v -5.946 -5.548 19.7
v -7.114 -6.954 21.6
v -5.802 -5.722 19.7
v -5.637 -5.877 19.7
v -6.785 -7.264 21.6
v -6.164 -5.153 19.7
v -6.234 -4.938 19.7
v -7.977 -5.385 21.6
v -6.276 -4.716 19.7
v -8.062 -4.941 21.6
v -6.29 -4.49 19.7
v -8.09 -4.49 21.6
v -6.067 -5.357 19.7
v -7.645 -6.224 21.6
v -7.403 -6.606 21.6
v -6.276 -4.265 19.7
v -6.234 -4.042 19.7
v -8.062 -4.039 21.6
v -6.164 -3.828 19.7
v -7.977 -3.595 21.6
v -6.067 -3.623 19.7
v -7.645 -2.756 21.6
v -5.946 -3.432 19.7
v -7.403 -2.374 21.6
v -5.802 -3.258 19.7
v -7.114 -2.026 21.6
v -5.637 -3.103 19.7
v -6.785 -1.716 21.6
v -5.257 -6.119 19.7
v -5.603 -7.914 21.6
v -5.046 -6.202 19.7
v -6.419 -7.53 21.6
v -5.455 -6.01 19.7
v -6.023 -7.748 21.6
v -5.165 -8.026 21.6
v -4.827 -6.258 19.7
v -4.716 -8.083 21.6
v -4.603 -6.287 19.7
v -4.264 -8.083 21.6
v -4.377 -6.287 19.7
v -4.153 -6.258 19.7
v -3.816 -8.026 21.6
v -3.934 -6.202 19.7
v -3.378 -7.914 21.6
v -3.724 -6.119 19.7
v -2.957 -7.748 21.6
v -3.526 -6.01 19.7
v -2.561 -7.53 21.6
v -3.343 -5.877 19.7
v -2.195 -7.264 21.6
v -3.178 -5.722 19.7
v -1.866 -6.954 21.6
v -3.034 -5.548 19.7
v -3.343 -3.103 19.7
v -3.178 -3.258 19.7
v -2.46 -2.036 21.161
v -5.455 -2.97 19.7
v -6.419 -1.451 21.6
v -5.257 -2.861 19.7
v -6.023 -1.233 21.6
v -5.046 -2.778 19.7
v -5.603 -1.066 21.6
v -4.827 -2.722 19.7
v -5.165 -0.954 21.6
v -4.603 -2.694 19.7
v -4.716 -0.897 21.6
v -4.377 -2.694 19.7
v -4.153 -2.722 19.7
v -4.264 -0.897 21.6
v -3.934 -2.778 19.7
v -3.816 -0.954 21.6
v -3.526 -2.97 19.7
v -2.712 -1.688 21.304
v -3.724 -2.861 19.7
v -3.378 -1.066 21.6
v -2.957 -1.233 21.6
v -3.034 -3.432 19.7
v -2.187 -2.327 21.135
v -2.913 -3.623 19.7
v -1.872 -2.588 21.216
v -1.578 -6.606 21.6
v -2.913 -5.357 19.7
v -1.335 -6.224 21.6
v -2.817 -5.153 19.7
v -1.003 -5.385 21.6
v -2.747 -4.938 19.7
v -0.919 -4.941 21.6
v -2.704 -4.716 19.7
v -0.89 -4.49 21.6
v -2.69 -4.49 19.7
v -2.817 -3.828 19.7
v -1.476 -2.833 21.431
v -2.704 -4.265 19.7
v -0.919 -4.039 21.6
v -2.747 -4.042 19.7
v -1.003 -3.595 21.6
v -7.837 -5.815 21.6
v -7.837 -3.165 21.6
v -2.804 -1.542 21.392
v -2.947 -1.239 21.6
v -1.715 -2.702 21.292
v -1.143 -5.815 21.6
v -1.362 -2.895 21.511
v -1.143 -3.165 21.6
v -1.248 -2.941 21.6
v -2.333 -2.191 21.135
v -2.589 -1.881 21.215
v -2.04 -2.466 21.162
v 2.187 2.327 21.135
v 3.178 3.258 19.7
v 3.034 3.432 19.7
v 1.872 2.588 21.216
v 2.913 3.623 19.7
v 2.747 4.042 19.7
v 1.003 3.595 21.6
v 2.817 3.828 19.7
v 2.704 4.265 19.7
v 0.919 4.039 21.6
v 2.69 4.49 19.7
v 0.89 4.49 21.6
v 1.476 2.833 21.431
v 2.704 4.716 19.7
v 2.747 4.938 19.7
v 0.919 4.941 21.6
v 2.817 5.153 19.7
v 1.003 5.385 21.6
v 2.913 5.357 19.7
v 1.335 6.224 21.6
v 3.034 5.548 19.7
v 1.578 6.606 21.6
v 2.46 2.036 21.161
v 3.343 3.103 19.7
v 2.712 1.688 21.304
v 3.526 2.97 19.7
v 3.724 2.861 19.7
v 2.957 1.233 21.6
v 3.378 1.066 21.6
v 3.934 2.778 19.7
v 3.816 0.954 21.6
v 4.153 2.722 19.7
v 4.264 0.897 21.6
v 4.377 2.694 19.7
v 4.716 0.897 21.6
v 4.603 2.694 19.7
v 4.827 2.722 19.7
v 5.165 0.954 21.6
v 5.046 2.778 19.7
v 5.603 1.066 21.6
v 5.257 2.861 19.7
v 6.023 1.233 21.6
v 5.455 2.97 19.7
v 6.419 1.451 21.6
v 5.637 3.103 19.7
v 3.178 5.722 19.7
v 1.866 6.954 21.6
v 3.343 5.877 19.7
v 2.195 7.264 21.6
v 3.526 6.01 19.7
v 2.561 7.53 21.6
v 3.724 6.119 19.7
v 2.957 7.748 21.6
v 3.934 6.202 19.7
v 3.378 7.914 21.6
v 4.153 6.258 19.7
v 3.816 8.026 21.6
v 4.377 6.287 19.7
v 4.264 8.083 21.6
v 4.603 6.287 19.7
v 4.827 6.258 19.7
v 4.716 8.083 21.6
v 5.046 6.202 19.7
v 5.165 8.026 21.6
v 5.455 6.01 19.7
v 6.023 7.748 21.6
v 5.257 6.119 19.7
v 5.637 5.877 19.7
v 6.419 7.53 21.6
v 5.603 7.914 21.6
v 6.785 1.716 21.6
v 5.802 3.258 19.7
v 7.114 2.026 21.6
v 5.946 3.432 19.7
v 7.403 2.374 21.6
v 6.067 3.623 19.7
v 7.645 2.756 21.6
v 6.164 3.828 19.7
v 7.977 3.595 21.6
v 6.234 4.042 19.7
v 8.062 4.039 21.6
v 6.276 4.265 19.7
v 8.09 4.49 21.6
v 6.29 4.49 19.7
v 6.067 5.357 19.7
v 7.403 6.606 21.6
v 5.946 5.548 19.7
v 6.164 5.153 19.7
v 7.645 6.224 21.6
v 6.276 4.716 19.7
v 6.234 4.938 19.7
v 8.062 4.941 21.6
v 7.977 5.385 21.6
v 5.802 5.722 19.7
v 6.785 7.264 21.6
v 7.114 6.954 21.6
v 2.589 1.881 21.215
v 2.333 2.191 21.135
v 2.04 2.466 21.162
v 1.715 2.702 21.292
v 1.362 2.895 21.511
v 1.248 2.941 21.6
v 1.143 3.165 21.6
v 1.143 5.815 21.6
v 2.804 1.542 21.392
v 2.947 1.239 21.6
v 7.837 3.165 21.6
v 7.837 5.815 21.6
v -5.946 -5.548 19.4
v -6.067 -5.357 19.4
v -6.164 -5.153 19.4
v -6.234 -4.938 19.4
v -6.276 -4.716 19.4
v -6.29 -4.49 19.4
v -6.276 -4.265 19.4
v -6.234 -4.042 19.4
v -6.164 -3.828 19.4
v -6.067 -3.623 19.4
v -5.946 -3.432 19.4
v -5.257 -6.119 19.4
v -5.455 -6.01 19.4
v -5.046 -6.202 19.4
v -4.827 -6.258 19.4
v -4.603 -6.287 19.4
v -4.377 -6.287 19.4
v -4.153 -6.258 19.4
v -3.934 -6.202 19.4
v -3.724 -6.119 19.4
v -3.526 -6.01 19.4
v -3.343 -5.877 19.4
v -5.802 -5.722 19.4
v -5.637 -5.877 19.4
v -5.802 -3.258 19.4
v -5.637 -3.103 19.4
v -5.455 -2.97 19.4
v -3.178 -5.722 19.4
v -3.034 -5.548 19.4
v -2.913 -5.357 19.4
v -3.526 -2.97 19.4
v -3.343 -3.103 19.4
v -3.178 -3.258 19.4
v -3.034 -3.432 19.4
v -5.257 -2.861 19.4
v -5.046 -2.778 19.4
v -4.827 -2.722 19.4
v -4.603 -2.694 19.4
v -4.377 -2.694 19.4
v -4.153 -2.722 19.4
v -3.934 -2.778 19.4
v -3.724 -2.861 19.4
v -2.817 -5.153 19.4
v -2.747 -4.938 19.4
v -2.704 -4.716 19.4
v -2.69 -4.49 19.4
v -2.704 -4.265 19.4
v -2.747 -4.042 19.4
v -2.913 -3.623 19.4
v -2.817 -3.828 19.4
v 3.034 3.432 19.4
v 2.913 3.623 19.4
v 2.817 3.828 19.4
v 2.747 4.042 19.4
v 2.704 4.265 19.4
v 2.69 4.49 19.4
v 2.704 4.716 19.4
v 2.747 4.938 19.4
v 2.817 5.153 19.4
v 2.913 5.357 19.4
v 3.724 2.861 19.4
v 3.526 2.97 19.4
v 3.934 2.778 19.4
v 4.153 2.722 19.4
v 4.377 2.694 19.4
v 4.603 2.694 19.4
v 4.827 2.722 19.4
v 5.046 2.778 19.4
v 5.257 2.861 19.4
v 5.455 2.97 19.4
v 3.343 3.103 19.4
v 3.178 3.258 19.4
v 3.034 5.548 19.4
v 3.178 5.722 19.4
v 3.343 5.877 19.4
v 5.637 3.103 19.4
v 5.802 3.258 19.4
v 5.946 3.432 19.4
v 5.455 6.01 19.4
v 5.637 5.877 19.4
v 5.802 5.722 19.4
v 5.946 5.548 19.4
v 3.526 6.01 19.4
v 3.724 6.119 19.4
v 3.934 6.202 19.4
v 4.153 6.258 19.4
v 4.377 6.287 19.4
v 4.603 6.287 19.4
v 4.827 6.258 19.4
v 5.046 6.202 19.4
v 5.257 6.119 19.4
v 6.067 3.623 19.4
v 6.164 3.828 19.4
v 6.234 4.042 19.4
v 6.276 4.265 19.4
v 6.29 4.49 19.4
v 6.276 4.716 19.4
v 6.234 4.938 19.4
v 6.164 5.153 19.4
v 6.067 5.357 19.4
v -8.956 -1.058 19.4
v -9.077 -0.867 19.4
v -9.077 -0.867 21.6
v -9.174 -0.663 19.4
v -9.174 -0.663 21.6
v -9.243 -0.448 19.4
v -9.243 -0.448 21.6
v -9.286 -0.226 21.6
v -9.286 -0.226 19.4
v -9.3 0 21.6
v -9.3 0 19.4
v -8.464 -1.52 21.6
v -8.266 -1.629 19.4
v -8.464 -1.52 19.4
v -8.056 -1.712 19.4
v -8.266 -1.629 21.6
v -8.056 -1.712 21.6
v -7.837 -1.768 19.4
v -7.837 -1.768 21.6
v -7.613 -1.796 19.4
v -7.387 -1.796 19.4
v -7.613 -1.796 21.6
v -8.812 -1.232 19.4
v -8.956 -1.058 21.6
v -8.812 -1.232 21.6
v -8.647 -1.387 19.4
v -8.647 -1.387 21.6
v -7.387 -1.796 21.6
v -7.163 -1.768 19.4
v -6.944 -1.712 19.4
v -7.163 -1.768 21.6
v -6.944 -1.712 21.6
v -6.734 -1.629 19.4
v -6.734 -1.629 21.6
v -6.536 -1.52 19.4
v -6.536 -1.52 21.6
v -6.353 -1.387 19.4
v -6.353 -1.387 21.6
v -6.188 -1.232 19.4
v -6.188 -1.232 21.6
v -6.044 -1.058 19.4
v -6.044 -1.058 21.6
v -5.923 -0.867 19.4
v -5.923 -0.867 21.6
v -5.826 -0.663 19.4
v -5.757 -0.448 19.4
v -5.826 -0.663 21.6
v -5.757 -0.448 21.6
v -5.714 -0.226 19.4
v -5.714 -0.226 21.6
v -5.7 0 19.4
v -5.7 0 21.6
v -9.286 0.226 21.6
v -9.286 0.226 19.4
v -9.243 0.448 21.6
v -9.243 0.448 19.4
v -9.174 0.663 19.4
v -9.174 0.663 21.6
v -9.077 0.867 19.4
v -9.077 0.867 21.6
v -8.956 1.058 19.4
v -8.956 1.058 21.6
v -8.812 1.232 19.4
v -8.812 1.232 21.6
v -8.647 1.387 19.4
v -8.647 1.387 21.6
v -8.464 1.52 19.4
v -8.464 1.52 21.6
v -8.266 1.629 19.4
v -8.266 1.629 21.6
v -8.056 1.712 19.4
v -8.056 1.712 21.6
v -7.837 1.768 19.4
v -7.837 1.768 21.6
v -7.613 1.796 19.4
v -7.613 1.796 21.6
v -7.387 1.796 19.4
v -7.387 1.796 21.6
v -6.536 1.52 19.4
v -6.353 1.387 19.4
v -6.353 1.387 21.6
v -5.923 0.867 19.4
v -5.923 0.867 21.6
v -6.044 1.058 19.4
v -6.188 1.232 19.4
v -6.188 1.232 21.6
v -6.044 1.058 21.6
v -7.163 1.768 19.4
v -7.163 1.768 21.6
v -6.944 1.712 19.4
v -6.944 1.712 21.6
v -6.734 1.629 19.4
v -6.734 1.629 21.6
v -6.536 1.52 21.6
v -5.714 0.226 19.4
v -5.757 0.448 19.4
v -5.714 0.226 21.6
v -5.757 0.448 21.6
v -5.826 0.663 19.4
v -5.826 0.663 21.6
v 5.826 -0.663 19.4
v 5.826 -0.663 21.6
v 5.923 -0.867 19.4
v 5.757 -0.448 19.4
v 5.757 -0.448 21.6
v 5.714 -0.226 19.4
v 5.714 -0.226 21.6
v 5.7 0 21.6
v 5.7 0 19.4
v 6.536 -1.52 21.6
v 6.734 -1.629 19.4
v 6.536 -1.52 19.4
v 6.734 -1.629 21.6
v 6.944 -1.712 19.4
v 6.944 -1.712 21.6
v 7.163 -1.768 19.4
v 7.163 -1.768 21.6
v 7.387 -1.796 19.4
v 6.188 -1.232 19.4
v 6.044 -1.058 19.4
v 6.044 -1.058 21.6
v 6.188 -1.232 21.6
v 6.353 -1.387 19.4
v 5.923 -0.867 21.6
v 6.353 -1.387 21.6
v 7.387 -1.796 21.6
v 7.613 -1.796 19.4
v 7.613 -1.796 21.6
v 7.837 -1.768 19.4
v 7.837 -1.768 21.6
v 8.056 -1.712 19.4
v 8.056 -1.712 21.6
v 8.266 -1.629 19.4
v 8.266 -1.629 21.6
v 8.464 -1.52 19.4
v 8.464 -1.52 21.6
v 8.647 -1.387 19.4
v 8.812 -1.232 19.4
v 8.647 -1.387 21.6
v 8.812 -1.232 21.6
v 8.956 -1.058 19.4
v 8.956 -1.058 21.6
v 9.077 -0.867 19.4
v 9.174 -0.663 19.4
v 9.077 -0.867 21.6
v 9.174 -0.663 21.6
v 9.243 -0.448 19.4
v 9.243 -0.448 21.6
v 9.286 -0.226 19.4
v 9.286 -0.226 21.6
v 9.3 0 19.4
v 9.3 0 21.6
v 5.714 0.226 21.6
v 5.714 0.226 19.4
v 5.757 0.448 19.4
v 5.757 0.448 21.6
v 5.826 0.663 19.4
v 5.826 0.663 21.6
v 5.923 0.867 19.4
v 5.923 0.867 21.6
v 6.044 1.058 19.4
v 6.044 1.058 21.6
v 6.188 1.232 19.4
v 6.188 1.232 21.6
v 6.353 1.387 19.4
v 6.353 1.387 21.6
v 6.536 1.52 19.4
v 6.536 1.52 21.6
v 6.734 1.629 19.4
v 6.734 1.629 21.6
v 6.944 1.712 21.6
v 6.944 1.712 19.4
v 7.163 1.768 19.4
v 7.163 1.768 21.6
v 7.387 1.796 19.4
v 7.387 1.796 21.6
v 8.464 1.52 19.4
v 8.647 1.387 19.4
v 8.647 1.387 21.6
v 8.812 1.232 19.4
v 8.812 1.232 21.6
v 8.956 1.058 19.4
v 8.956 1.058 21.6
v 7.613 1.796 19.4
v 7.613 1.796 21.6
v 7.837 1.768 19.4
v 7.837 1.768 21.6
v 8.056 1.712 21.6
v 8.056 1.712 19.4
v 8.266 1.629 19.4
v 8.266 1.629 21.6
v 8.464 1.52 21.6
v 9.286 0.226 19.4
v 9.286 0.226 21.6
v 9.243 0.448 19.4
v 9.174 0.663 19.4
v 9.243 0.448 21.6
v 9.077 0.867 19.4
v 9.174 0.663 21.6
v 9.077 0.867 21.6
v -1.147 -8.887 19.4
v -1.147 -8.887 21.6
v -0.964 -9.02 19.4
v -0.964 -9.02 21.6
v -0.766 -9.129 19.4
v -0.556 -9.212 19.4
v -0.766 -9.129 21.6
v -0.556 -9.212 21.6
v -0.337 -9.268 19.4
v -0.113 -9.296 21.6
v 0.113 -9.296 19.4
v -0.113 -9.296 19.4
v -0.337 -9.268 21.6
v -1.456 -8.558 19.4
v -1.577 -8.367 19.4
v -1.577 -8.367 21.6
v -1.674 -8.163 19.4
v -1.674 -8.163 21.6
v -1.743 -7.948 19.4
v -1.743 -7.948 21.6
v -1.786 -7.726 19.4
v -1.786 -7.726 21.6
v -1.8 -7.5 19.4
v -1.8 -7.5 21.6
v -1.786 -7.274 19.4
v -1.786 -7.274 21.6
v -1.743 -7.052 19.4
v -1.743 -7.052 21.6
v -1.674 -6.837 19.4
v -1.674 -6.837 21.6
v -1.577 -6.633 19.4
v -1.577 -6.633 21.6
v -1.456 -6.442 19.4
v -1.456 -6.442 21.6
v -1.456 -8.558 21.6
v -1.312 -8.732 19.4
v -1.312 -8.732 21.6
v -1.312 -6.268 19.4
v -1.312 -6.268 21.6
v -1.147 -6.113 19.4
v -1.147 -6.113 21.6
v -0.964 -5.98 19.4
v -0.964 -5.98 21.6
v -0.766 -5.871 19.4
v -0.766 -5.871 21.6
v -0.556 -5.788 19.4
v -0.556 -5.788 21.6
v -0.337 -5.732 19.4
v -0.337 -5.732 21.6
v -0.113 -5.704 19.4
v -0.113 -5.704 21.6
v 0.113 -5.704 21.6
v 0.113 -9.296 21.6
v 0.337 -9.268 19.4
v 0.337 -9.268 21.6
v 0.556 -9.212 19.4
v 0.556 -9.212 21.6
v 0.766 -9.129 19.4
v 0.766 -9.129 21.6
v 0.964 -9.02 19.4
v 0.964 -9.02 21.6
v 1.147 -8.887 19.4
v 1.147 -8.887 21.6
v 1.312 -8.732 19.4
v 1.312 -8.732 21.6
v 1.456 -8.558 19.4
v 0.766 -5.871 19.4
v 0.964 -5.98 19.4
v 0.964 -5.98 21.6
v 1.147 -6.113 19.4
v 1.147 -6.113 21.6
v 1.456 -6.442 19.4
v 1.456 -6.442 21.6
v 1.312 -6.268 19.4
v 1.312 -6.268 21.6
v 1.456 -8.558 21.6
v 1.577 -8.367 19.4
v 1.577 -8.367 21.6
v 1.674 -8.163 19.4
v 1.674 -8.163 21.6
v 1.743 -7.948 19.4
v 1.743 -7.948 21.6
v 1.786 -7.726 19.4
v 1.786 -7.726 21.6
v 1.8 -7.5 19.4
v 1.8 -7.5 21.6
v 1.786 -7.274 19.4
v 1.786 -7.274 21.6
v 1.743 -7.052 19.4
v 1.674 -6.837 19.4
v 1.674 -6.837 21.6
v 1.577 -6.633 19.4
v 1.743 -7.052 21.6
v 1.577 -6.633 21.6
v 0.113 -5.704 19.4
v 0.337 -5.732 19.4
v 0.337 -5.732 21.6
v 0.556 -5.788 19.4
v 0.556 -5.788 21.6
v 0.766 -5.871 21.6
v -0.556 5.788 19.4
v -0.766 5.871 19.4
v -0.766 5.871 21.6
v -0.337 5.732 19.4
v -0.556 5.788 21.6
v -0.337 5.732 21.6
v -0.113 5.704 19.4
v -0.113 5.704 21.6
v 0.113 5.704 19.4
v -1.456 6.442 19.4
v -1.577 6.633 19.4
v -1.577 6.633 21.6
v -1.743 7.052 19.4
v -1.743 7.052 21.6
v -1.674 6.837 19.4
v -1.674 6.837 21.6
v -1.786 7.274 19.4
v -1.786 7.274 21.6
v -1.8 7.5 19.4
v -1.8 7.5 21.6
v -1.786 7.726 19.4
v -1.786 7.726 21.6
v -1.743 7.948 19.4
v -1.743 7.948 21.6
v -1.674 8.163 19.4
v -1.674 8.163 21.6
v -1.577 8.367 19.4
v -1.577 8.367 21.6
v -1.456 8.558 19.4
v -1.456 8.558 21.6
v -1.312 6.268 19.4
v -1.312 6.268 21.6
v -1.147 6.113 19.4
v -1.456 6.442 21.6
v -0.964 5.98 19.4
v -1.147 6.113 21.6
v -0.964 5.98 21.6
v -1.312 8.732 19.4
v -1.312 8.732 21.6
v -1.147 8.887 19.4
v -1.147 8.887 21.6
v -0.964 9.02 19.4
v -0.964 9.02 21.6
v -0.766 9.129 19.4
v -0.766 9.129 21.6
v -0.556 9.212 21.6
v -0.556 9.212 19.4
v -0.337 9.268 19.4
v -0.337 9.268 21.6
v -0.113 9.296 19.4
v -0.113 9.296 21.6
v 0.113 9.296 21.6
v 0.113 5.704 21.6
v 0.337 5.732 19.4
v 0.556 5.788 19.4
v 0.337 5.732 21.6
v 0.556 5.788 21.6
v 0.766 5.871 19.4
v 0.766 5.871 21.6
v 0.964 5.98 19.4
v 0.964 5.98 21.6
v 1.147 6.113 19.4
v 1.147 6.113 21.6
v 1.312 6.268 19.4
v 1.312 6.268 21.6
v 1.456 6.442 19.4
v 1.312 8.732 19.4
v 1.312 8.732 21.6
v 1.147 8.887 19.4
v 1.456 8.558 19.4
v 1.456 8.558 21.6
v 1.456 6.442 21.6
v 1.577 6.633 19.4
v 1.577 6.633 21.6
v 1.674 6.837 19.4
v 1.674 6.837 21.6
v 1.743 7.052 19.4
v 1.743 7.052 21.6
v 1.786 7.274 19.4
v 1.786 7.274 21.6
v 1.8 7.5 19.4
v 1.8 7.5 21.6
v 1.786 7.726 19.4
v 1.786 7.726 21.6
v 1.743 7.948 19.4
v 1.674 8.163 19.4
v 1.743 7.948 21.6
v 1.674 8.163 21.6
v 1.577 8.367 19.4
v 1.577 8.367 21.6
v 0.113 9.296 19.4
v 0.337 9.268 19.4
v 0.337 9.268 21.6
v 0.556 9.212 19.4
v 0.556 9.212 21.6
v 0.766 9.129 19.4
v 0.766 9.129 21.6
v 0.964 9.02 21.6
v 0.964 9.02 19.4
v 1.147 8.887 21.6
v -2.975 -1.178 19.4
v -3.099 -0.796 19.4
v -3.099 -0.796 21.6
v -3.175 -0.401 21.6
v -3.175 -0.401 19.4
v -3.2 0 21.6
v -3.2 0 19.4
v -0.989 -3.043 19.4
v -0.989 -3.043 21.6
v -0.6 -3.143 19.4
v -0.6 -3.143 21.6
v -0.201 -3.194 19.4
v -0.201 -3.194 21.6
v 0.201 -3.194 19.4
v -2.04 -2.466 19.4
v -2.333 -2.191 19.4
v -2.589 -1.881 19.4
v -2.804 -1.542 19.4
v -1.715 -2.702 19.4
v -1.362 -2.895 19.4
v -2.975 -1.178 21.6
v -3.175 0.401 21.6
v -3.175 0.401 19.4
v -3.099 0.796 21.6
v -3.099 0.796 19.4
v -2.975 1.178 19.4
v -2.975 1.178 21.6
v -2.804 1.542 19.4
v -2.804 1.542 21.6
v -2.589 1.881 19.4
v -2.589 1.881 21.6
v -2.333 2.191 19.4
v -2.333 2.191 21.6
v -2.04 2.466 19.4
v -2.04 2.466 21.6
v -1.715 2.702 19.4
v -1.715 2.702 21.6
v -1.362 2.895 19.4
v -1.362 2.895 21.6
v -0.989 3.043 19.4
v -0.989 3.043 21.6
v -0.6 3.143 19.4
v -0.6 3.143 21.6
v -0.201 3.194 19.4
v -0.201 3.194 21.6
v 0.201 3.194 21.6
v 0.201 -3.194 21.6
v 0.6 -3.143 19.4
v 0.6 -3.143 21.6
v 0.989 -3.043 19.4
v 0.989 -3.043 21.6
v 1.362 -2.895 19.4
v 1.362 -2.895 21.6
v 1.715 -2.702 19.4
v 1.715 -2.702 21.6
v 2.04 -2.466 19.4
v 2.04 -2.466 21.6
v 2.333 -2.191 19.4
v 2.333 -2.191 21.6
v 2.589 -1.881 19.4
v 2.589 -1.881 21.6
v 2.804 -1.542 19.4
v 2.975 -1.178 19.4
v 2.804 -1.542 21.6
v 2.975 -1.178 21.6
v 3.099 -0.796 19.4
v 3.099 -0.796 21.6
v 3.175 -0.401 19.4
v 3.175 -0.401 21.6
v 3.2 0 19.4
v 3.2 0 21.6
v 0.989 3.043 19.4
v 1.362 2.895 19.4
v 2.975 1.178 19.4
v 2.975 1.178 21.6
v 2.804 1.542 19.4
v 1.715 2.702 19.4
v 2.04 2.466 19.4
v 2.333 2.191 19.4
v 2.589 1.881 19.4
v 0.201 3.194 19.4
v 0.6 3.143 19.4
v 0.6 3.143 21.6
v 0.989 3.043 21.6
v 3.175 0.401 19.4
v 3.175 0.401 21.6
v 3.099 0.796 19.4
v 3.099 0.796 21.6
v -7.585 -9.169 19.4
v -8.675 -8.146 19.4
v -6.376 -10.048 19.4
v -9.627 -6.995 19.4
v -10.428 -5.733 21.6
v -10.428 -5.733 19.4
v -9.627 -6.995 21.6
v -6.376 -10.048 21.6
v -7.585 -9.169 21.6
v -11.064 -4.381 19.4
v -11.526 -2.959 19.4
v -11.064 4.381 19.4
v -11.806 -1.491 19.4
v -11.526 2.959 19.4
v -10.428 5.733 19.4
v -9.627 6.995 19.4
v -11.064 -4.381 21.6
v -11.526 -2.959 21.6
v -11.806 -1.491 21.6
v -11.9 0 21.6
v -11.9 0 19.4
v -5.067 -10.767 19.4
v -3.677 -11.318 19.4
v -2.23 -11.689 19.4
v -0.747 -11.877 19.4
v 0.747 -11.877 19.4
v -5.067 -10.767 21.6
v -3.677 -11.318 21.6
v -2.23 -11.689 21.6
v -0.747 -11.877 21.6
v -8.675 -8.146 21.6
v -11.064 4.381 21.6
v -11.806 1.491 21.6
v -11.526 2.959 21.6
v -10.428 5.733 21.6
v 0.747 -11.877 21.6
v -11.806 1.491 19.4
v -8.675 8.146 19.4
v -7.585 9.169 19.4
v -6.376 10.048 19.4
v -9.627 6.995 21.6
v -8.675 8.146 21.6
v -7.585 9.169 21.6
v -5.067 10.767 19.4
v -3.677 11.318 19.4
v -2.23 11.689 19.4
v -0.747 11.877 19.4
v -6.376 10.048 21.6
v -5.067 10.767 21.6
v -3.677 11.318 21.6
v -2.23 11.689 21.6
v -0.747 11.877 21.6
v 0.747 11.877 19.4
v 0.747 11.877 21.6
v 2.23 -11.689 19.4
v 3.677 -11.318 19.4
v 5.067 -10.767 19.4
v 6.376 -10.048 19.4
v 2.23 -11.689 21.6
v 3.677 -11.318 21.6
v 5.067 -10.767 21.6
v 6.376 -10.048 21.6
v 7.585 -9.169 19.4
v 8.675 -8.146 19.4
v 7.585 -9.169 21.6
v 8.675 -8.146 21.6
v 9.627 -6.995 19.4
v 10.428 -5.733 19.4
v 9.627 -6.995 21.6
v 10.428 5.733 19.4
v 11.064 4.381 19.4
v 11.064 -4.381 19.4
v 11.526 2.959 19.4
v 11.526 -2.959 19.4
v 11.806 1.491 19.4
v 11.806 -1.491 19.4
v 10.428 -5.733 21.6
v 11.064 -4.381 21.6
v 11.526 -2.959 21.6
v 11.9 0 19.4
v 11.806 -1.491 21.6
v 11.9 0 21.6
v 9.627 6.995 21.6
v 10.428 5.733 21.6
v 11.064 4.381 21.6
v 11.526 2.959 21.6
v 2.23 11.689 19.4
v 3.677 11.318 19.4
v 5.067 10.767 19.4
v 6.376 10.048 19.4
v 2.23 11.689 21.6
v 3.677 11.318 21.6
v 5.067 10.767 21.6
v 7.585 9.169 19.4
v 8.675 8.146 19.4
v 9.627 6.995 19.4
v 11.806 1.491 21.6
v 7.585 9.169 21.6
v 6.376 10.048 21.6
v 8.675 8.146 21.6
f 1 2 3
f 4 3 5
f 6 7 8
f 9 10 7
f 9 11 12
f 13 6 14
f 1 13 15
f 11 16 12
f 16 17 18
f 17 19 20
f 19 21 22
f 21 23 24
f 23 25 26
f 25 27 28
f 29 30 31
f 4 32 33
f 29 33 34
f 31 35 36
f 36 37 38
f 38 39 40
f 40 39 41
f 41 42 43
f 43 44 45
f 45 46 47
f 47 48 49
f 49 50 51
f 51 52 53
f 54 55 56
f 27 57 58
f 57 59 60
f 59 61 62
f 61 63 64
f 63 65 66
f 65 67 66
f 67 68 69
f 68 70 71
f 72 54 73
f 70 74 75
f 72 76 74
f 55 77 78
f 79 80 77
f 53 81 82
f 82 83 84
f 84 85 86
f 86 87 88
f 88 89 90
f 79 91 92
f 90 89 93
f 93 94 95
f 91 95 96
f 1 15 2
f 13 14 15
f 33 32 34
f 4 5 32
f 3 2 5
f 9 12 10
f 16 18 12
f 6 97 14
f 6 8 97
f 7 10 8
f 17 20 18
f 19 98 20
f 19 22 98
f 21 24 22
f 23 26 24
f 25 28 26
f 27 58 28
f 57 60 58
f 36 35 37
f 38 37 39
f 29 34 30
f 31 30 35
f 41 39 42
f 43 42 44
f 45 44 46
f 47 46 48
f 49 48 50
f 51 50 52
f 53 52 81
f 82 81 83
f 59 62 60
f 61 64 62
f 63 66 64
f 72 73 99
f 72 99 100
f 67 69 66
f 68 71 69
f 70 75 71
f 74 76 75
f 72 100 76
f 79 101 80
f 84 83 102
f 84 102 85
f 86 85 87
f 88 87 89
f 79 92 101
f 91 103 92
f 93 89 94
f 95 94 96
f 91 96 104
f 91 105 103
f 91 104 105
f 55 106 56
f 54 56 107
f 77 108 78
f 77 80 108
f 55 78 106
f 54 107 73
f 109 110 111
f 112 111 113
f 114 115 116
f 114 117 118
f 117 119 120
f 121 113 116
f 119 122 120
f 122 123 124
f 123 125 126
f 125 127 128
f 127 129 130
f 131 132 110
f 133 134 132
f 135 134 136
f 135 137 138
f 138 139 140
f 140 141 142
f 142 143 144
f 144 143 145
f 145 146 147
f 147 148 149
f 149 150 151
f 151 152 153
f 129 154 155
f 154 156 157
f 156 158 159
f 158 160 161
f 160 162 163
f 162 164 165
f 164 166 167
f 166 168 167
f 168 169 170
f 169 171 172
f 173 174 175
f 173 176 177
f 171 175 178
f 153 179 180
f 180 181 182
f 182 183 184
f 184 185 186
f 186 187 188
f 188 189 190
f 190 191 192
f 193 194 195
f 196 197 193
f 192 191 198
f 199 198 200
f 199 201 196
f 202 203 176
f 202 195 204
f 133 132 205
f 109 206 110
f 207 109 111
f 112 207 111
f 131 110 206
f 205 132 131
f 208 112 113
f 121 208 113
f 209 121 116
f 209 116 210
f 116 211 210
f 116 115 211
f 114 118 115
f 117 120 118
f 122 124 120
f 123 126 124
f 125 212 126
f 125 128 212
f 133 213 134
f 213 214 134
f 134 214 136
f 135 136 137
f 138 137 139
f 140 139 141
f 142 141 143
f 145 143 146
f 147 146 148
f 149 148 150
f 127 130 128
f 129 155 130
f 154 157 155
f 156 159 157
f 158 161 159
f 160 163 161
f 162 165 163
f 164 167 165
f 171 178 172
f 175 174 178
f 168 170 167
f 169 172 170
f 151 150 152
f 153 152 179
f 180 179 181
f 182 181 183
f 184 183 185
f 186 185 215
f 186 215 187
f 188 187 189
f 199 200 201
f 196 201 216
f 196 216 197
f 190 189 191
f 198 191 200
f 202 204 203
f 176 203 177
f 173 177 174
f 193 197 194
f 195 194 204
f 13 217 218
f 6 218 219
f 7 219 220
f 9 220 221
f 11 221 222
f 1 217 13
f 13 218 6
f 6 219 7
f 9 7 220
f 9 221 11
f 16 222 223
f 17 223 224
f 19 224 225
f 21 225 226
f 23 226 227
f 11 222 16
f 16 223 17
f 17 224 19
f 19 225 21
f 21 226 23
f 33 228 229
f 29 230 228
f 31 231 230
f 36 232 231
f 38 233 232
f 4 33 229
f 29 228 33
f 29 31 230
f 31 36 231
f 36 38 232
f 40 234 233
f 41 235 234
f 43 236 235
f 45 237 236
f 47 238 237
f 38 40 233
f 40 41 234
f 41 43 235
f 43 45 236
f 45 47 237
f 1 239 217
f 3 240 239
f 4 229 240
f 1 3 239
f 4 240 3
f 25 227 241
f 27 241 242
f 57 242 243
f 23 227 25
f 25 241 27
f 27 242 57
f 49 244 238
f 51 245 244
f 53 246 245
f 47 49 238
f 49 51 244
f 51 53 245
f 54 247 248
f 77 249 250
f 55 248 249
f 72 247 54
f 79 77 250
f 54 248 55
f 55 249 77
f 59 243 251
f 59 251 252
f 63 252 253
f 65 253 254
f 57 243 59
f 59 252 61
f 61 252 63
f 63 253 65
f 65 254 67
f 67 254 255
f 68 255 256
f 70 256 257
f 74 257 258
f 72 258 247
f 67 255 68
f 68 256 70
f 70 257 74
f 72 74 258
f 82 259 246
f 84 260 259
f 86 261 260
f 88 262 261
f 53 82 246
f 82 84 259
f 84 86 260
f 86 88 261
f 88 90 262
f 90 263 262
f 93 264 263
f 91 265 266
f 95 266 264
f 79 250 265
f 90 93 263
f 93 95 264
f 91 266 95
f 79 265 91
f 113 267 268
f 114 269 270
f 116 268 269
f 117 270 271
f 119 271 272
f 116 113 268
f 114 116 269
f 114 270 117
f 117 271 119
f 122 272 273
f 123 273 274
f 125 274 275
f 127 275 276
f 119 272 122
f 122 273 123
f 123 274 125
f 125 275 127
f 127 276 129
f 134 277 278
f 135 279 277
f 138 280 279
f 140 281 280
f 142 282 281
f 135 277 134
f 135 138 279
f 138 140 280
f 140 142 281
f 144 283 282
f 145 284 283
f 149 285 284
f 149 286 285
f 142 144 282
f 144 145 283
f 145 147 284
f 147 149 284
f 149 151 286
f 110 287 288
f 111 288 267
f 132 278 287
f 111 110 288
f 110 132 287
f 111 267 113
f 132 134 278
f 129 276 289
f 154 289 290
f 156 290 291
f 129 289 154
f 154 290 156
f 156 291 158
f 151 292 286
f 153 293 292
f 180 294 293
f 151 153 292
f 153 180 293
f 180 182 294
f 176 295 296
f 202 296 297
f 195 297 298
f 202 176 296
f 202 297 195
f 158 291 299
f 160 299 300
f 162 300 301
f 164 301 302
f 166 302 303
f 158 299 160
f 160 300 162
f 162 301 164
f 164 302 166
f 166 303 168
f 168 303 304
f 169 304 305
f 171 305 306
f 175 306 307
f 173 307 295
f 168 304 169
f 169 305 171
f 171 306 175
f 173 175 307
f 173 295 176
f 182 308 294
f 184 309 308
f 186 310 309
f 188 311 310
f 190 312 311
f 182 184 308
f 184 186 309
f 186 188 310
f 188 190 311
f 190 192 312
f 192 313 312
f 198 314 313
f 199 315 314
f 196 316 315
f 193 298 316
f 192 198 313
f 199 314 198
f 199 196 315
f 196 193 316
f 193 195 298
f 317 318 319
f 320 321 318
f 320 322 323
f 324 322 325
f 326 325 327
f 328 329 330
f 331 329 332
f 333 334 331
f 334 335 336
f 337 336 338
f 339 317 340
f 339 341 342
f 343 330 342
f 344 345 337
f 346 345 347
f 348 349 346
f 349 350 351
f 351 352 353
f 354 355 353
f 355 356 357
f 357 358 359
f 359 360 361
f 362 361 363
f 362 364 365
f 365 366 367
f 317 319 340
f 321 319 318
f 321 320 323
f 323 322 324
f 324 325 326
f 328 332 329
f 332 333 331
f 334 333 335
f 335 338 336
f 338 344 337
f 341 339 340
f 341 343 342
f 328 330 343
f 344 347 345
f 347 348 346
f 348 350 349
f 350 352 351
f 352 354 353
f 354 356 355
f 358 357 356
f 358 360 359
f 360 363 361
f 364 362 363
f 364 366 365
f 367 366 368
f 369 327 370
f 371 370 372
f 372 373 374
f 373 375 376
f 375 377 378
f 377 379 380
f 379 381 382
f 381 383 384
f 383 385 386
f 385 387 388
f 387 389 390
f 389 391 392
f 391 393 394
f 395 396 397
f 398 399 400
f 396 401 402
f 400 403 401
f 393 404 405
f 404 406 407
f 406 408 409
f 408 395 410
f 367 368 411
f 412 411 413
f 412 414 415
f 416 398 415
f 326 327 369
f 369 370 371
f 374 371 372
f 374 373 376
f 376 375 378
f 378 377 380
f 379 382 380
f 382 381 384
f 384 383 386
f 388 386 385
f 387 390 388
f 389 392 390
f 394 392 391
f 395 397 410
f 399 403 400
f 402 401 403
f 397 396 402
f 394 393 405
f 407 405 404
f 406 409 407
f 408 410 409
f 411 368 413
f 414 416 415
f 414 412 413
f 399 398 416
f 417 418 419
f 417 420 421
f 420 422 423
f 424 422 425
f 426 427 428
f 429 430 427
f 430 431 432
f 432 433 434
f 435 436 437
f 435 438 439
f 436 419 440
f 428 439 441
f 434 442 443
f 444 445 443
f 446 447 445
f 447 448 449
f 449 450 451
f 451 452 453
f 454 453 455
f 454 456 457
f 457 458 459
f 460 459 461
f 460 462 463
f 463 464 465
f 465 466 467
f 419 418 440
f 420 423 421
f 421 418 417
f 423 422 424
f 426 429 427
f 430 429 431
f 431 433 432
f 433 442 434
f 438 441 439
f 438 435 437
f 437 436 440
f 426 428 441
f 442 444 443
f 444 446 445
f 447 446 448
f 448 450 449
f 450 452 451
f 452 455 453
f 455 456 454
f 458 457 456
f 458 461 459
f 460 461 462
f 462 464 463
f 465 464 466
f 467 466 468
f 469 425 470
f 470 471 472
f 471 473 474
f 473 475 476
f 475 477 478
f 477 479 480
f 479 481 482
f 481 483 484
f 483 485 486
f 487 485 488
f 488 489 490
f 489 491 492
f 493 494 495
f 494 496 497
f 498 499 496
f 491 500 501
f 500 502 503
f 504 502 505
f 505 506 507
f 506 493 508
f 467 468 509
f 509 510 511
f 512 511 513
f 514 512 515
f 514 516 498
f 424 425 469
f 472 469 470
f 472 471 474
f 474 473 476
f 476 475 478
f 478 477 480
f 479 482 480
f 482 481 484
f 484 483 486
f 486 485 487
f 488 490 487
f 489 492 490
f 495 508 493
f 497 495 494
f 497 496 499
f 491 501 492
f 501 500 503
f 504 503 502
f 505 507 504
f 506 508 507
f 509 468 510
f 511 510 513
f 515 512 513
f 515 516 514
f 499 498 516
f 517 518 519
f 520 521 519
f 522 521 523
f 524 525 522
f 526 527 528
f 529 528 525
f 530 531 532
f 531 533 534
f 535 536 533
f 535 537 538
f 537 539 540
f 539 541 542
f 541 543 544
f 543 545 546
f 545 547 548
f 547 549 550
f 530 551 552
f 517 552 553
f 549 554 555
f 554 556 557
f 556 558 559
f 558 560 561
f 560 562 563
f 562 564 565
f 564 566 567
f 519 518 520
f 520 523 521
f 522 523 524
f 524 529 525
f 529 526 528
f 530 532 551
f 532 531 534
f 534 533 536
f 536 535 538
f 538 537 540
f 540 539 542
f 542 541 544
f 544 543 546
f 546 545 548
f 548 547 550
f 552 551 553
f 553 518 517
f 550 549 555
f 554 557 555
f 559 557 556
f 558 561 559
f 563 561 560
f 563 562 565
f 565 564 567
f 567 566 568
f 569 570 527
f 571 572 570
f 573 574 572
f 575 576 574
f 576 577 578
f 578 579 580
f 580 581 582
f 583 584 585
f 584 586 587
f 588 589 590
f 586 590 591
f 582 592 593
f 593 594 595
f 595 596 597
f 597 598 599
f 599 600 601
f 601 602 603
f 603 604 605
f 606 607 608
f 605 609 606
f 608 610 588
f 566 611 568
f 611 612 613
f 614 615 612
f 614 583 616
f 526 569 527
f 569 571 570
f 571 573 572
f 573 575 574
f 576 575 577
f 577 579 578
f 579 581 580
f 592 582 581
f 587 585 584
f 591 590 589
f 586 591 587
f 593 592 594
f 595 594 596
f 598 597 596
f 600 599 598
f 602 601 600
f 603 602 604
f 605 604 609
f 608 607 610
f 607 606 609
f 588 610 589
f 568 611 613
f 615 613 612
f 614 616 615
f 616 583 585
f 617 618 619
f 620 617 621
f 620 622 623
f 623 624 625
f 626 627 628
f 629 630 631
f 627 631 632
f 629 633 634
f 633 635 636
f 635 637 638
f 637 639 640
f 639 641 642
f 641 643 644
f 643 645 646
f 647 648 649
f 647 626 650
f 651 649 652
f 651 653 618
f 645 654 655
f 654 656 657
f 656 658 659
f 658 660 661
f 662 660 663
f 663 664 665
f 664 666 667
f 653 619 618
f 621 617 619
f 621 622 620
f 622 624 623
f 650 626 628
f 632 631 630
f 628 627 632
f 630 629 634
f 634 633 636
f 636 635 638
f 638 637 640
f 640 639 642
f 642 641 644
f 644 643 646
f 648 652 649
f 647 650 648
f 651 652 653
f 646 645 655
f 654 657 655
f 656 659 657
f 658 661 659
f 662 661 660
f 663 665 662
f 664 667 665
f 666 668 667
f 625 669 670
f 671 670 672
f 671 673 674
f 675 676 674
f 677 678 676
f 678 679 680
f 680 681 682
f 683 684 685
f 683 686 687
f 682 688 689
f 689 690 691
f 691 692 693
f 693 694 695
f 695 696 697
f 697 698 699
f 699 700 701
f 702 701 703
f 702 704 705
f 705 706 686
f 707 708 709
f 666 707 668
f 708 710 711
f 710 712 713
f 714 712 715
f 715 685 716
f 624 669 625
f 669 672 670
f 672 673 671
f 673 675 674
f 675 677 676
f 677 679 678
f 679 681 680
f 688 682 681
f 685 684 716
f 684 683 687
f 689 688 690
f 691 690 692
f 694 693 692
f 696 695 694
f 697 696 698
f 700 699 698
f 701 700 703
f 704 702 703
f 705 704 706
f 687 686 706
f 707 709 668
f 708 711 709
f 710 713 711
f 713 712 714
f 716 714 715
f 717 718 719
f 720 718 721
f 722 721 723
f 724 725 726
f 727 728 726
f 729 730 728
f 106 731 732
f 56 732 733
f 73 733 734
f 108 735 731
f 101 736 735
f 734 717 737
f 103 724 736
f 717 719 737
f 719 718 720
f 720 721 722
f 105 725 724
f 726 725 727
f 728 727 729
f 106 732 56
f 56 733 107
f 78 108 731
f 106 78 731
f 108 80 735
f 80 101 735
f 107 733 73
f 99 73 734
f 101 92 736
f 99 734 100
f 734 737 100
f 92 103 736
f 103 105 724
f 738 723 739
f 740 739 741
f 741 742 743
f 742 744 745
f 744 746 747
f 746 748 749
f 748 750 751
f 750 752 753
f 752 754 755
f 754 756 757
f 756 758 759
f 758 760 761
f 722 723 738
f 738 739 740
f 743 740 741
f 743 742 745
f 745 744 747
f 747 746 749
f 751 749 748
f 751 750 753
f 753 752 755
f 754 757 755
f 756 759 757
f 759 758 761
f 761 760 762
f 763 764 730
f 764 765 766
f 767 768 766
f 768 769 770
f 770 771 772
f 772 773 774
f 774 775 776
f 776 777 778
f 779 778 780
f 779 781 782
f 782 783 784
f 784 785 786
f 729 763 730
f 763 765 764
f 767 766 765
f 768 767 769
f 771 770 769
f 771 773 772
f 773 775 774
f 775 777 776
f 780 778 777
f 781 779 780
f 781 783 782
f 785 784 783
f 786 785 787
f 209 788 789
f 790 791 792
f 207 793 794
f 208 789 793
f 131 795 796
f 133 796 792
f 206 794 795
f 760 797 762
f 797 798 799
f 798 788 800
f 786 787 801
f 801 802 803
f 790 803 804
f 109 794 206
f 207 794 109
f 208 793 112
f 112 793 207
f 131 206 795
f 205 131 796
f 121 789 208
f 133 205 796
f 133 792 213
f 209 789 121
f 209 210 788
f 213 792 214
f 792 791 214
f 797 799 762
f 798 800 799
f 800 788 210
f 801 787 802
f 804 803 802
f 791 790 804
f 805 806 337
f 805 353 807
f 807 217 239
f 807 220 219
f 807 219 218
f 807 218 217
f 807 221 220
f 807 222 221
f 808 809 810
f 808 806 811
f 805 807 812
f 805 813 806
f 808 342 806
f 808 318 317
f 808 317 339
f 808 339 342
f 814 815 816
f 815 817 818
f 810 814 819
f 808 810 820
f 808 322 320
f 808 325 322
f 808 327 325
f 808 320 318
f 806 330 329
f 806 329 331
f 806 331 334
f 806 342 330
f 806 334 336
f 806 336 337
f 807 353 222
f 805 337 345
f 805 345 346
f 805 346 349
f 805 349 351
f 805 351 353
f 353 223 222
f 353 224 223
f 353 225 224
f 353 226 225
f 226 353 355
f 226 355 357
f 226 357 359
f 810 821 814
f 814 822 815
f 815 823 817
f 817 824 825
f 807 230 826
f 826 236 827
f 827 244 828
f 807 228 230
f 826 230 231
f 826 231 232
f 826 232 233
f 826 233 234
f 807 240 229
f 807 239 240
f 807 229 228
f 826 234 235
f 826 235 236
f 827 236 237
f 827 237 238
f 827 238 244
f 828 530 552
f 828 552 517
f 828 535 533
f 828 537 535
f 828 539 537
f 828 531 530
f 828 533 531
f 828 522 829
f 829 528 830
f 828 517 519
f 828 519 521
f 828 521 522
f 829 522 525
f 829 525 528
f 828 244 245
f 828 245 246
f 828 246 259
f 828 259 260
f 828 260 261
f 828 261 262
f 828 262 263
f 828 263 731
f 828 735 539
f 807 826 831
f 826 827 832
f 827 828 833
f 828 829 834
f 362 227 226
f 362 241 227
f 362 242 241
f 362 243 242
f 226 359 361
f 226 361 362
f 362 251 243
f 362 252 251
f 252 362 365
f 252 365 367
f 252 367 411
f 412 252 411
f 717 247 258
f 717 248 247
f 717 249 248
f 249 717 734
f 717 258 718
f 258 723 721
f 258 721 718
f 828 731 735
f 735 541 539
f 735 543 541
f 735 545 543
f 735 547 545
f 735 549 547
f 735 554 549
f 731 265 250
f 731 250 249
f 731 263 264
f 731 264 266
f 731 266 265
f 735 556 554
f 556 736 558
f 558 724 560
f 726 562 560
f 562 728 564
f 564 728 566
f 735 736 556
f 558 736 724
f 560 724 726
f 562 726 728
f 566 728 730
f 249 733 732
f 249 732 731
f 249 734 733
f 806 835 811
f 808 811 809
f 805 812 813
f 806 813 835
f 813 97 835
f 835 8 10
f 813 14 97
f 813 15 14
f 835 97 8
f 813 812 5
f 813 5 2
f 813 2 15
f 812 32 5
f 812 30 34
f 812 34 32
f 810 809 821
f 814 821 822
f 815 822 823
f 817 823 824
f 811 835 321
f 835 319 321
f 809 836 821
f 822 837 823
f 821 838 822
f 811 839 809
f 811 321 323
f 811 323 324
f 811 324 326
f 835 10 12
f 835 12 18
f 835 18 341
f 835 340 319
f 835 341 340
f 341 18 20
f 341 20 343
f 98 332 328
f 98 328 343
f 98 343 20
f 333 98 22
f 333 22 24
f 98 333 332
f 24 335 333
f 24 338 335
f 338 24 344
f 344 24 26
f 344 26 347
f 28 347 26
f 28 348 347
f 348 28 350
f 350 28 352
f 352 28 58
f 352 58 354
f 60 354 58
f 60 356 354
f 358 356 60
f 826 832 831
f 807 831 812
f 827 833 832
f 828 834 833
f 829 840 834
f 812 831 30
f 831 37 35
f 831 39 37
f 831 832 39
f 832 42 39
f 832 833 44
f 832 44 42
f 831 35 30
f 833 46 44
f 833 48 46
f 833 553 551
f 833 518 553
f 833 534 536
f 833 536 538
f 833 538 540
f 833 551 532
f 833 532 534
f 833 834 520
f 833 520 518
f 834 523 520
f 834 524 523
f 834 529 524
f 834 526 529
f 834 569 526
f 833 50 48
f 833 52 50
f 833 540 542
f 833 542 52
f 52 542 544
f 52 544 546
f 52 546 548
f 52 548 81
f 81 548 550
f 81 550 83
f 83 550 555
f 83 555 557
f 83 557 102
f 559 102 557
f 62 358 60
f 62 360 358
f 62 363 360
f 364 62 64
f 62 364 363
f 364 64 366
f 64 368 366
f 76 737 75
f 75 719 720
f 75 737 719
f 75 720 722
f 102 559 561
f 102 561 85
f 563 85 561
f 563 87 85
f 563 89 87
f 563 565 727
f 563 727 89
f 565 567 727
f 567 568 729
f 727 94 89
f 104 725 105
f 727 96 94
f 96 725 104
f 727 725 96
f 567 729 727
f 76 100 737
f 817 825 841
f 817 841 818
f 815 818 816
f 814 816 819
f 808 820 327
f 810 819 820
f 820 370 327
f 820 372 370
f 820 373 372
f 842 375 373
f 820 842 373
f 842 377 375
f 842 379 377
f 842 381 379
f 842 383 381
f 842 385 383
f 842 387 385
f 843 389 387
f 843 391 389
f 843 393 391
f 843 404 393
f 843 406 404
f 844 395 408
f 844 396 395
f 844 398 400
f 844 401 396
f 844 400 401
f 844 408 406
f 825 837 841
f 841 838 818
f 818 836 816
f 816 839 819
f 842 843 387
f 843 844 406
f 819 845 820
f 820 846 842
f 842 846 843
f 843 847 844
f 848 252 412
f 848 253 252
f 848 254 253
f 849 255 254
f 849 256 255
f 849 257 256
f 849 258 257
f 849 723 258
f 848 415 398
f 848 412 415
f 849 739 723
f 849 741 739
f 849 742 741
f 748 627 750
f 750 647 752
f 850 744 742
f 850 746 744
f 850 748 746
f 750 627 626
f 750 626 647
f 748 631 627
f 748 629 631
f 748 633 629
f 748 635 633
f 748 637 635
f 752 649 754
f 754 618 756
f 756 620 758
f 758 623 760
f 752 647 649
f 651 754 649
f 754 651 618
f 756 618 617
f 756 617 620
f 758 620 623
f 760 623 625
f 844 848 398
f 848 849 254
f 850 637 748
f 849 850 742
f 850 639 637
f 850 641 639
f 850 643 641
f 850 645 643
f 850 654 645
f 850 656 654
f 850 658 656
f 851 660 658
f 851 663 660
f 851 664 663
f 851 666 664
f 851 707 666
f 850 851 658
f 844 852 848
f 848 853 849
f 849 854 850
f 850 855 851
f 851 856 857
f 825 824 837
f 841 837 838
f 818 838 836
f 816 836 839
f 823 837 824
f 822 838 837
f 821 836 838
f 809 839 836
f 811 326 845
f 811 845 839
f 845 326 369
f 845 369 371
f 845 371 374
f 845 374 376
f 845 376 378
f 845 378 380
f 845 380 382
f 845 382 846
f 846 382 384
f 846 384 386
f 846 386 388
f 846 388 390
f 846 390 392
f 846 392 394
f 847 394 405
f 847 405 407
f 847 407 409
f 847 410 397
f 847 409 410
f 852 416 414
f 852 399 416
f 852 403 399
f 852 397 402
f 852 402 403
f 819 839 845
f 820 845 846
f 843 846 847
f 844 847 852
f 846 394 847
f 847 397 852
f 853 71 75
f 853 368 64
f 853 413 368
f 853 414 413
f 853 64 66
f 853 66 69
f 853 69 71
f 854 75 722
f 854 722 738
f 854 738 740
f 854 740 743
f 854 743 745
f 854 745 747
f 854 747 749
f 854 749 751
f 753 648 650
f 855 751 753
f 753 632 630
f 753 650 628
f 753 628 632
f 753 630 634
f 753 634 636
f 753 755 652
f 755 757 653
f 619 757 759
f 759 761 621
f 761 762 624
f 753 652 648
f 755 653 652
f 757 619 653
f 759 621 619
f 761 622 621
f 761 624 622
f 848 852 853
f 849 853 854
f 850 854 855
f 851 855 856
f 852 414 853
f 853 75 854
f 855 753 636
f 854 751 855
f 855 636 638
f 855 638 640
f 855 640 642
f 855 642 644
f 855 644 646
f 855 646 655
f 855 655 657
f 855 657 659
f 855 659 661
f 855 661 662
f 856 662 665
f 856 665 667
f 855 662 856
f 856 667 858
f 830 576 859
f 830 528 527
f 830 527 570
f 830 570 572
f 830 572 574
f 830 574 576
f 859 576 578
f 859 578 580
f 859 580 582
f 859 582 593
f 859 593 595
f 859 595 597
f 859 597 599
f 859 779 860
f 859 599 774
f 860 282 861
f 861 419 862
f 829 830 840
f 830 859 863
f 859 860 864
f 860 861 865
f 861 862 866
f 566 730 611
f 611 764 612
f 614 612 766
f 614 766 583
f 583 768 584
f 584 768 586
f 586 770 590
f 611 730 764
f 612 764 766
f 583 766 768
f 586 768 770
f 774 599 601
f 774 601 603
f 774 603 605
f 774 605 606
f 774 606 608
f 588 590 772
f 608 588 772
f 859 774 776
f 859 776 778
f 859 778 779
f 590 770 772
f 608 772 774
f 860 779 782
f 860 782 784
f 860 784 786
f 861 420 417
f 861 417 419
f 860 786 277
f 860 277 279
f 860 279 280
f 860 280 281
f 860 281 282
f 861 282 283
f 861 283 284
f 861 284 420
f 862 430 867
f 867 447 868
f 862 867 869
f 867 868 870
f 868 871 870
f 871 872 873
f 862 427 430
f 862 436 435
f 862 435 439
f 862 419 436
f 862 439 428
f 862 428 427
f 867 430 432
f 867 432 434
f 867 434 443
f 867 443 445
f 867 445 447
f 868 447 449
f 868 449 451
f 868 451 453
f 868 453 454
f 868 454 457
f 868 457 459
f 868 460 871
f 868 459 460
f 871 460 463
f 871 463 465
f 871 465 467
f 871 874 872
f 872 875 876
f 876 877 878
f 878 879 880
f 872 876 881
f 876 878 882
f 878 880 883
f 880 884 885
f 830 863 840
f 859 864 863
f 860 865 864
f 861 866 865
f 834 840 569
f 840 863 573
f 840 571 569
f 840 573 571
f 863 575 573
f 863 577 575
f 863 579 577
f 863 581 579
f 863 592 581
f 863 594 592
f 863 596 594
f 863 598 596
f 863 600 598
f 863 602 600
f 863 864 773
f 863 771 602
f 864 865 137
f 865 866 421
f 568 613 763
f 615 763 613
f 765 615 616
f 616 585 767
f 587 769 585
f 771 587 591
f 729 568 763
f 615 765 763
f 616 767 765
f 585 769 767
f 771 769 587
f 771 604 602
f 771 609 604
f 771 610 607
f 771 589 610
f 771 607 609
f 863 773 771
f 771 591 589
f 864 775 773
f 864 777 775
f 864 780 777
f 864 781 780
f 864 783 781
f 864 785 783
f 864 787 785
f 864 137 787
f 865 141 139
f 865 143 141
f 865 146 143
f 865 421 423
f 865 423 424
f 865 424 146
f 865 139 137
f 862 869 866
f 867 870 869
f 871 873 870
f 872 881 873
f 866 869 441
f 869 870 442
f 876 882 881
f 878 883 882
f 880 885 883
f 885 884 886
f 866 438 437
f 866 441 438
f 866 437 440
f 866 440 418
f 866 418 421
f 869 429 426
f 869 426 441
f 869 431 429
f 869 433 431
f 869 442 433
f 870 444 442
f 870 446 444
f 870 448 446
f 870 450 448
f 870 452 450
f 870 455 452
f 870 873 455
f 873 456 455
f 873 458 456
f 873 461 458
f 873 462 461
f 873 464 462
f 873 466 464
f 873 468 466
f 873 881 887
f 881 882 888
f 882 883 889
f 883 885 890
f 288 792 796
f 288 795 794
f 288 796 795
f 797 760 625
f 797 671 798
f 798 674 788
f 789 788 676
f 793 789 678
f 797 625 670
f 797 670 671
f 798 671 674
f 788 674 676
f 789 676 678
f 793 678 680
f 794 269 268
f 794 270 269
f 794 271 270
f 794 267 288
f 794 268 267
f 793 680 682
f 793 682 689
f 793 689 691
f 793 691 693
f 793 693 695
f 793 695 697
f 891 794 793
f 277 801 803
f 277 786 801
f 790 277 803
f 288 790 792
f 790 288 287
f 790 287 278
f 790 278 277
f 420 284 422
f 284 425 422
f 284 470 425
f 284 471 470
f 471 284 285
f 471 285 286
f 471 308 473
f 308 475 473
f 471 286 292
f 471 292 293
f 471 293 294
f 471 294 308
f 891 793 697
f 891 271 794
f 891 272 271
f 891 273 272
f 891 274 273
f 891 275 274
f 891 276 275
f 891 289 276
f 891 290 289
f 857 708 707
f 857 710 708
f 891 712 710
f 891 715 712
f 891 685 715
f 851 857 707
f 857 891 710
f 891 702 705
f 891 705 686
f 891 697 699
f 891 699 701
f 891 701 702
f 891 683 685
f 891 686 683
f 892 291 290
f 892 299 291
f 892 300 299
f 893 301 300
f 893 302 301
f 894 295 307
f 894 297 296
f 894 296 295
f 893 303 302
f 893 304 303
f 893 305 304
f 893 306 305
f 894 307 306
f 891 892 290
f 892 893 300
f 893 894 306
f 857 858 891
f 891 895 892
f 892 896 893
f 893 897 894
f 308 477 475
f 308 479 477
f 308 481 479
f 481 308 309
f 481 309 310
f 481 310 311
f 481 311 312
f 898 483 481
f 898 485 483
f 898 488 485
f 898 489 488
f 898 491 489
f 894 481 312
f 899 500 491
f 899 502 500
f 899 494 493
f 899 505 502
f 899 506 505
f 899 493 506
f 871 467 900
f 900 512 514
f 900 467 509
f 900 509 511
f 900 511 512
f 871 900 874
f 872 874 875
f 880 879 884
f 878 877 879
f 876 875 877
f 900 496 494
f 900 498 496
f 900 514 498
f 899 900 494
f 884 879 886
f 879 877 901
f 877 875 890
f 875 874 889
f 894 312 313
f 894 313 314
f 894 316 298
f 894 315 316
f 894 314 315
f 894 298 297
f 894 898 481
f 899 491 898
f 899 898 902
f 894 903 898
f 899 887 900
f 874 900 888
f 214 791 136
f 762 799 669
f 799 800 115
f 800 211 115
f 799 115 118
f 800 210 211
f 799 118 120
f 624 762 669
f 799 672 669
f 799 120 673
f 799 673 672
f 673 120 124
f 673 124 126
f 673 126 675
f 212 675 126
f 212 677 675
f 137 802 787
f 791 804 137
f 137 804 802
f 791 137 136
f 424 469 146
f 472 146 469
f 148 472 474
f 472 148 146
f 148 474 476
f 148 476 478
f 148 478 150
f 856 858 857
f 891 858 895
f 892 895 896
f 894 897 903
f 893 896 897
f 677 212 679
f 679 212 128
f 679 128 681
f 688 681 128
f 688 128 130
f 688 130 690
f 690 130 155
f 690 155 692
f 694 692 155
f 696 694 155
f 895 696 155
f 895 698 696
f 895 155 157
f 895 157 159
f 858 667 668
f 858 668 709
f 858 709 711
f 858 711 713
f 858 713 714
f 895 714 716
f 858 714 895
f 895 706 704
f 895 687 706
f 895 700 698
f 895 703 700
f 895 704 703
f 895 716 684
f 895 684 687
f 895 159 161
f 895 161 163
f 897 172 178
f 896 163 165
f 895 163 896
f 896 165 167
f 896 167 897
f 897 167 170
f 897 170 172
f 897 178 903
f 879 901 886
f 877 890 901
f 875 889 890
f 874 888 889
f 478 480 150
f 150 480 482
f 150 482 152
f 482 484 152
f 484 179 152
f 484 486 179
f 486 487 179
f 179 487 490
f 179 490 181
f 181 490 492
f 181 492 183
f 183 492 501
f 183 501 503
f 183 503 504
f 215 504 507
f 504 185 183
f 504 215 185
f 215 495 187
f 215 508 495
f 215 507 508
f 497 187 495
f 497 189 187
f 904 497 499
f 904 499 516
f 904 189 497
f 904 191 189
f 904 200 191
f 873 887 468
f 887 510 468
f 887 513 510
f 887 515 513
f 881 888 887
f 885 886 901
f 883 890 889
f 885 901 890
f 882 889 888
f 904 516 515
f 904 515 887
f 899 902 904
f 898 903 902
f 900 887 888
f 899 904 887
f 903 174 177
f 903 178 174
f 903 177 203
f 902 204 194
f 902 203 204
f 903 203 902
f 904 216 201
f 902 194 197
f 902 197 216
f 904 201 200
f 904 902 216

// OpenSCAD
$fn = 50;

difference() {
	union() {
		translate(v = [0, 0, 19.4]) {
			cylinder(h = 2.2, r = 11.9);
		}
	}
	union() {
		translate(v = [-4.490128060534576, -4.490128060534576, 21.6]) {
			rotate(a = [0, 0, 0]) {
				difference() {
					union() {
						translate(v = [0, 0, -10.0]) {
							cylinder(h = 10, r = 1.5);
						}
						translate(v = [0, 0, -1.9]) {
							cylinder(h = 1.9, r1 = 1.8, r2 = 3.6);
						}
						cylinder(h = 250, r = 3.6);
						translate(v = [0, 0, -10.0]) {
							cylinder(h = 10, r = 1.8);
						}
						translate(v = [0, 0, -10.0]) {
							cylinder(h = 10, r = 1.5);
						}
					}
					union();
				}
			}
		}
		translate(v = [4.490128060534576, 4.490128060534576, 21.6]) {
			rotate(a = [0, 0, 0]) {
				difference() {
					union() {
						translate(v = [0, 0, -10.0]) {
							cylinder(h = 10, r = 1.5);
						}
						translate(v = [0, 0, -1.9]) {
							cylinder(h = 1.9, r1 = 1.8, r2 = 3.6);
						}
						cylinder(h = 250, r = 3.6);
						translate(v = [0, 0, -10.0]) {
							cylinder(h = 10, r = 1.8);
						}
						translate(v = [0, 0, -10.0]) {
							cylinder(h = 10, r = 1.5);
						}
					}
					union();
				}
			}
		}
		translate(v = [-7.5, 0, 18.4]) {
			cylinder(h = 4.2, r = 1.8);
		}
		translate(v = [7.5, 0, 18.4]) {
			cylinder(h = 4.2, r = 1.8);
		}
		translate(v = [0, -7.5, 18.4]) {
			cylinder(h = 4.2, r = 1.8);
		}
		translate(v = [0, 7.5, 18.4]) {
			cylinder(h = 4.2, r = 1.8);
		}
		translate(v = [0, 0, 19.2]) {
			cylinder(h = 4.2, r = 3.2);
		}
	}
}
